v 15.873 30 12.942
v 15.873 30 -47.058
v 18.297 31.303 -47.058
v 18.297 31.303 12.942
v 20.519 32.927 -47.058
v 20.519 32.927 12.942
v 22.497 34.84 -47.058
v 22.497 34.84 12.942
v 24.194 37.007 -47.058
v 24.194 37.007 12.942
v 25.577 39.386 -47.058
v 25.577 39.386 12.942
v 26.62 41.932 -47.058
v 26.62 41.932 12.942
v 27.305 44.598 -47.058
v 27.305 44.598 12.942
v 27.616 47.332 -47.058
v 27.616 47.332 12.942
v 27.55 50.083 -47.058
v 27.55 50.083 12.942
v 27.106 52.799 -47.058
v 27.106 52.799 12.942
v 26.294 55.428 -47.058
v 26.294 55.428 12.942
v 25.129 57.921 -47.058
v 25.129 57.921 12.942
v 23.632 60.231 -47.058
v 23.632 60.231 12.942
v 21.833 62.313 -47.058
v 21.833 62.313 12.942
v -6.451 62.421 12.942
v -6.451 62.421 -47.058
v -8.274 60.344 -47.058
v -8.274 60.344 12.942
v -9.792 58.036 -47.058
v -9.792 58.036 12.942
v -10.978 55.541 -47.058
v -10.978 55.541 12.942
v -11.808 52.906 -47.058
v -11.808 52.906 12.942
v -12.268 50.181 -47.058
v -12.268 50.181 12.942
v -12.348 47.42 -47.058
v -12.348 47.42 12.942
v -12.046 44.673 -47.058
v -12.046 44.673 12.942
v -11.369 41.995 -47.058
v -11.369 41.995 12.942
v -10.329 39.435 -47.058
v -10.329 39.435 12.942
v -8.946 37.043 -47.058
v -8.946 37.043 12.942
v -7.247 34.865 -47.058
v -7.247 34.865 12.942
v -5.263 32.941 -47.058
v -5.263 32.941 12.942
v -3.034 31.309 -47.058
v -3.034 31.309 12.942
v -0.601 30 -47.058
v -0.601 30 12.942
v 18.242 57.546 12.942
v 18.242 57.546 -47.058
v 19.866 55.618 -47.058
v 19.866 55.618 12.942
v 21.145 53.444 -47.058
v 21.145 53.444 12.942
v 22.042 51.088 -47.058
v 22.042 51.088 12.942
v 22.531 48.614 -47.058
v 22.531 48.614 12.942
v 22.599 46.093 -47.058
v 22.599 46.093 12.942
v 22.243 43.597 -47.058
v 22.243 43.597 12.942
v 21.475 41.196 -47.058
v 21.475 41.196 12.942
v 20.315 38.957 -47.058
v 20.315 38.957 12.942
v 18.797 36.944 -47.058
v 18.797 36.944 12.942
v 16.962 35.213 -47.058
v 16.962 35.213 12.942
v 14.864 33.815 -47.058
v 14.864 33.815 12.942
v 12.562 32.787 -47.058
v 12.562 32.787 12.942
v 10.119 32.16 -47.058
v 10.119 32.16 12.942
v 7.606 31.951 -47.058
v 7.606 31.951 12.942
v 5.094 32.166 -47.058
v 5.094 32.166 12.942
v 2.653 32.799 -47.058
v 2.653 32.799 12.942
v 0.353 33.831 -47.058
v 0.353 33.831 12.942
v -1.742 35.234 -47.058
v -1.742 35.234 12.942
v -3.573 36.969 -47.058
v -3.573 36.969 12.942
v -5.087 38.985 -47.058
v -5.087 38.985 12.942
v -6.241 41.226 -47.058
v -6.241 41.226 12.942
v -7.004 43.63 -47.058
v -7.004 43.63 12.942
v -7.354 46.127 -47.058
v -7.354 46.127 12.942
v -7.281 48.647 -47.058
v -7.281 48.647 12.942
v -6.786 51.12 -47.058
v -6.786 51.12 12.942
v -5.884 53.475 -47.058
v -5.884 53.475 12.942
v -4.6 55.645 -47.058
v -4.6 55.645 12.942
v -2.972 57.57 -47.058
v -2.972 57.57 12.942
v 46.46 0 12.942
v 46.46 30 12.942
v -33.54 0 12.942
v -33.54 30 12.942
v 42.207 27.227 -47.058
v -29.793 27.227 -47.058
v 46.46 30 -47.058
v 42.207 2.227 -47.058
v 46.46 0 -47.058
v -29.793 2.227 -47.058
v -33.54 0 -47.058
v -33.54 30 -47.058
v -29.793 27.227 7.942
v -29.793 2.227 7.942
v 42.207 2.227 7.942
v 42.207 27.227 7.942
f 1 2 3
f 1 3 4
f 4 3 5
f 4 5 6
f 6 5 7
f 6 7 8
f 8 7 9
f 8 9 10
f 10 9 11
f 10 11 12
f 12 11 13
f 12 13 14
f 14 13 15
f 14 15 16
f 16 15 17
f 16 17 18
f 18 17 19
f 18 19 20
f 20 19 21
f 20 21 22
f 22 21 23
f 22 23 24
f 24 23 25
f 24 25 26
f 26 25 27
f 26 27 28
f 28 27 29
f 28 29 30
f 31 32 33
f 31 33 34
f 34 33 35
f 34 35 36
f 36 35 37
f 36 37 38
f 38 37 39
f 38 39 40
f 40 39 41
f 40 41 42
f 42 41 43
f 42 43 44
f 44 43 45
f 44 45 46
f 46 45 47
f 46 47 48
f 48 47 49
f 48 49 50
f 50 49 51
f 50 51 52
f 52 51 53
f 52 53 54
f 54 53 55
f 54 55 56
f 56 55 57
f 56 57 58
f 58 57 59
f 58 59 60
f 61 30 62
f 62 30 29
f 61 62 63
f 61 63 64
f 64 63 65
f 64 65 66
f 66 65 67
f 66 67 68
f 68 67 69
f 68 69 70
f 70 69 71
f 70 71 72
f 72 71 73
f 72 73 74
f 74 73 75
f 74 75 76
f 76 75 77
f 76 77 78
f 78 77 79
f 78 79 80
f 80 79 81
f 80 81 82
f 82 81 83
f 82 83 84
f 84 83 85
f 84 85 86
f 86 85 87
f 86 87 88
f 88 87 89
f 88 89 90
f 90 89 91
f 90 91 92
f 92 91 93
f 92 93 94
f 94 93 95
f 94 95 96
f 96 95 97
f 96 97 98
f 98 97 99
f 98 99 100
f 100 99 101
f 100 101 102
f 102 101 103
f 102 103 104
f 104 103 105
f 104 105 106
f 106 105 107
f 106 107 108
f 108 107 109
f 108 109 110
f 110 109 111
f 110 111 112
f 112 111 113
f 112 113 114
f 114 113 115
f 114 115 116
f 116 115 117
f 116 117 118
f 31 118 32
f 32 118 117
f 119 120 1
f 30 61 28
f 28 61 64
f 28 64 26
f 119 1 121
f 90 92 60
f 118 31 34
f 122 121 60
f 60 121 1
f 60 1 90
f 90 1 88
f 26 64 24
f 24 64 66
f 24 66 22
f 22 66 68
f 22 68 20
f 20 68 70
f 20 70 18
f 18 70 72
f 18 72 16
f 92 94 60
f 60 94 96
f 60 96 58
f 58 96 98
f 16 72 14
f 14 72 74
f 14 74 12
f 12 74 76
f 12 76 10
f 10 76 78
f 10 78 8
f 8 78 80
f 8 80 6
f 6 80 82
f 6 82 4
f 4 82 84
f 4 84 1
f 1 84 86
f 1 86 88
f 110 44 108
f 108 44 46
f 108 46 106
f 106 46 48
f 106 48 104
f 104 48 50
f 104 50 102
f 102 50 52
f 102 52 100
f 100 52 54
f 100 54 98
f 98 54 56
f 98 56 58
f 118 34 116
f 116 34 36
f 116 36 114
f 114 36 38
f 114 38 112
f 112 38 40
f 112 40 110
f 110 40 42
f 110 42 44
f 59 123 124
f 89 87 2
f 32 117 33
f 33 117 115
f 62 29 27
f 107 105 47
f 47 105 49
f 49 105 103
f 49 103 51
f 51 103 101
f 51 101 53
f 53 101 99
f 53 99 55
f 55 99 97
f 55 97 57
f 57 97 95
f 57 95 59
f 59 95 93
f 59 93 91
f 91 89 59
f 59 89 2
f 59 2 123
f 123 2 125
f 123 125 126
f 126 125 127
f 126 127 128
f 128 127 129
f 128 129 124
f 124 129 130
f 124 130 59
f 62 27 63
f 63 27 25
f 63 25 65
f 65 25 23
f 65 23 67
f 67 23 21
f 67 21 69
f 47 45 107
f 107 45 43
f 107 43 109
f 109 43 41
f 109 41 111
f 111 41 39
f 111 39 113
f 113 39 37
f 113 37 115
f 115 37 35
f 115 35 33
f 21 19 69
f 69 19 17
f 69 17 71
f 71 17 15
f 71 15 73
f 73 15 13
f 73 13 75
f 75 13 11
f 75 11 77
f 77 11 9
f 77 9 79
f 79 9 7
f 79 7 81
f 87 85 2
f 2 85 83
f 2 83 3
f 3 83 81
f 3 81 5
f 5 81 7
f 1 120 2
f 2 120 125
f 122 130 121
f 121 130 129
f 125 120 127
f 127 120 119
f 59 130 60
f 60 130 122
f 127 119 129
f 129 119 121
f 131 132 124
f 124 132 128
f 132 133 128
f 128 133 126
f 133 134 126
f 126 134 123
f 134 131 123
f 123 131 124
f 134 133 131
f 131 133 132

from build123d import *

# Parameters (mm, degrees)
SKETCH1_W           = 80
SKETCH1_H           = 60
BOSS_EXTRUDE2_DEPTH = 30
SKETCH2_W           = 72
SKETCH2_H           = 25
CUT_EXTRUDE1_DEPTH  = 55
BOSS_EXTRUDE3_DEPTH = 60


with BuildPart() as part:
    # Sketch1 → Boss-Extrude2 (new body)
    with BuildSketch(Plane(origin=(0, 0, 0), x_dir=(1, 0, 0), z_dir=(0, 1, 0))):
        with Locations((6.460176991, 17.057522124)):
            Rectangle(SKETCH1_W, SKETCH1_H)
    extrude(amount=BOSS_EXTRUDE2_DEPTH)

    # Sketch2 → Cut-Extrude1 (cut)
    with BuildSketch(Plane(origin=(0, 0, -47.057522124), x_dir=(-1, 0, 0), z_dir=(0, 0, -1))):
        with Locations((-6.207310929, 14.727365754)):
            Rectangle(SKETCH2_W, SKETCH2_H)
    extrude(amount=-CUT_EXTRUDE1_DEPTH, mode=Mode.SUBTRACT)


with BuildPart() as body_2:
    # Sketch3 → Boss-Extrude3 (new body)
    with BuildSketch(Plane(origin=(0, 0, -47.057522124), x_dir=(-1, 0, 0), z_dir=(0, 0, -1))):
        with BuildLine():
            Line((-18.241655929, 57.546020063), (-21.832571653, 62.312614127))
            ThreePointArc((-21.832571653, 62.312614127), (-7.559367185, 28.225064213), (6.451490845, 62.42128158))
            Line((6.451490845, 62.42128158), (2.971534297, 57.569692838))
            ThreePointArc((2.971534297, 57.569692838), (-7.606485249, 31.951270677), (-18.241655929, 57.546020063))
        make_face()
    extrude(amount=-BOSS_EXTRUDE3_DEPTH)

    # Combine1: union part
    add(part.part)


solid = body_2.part
